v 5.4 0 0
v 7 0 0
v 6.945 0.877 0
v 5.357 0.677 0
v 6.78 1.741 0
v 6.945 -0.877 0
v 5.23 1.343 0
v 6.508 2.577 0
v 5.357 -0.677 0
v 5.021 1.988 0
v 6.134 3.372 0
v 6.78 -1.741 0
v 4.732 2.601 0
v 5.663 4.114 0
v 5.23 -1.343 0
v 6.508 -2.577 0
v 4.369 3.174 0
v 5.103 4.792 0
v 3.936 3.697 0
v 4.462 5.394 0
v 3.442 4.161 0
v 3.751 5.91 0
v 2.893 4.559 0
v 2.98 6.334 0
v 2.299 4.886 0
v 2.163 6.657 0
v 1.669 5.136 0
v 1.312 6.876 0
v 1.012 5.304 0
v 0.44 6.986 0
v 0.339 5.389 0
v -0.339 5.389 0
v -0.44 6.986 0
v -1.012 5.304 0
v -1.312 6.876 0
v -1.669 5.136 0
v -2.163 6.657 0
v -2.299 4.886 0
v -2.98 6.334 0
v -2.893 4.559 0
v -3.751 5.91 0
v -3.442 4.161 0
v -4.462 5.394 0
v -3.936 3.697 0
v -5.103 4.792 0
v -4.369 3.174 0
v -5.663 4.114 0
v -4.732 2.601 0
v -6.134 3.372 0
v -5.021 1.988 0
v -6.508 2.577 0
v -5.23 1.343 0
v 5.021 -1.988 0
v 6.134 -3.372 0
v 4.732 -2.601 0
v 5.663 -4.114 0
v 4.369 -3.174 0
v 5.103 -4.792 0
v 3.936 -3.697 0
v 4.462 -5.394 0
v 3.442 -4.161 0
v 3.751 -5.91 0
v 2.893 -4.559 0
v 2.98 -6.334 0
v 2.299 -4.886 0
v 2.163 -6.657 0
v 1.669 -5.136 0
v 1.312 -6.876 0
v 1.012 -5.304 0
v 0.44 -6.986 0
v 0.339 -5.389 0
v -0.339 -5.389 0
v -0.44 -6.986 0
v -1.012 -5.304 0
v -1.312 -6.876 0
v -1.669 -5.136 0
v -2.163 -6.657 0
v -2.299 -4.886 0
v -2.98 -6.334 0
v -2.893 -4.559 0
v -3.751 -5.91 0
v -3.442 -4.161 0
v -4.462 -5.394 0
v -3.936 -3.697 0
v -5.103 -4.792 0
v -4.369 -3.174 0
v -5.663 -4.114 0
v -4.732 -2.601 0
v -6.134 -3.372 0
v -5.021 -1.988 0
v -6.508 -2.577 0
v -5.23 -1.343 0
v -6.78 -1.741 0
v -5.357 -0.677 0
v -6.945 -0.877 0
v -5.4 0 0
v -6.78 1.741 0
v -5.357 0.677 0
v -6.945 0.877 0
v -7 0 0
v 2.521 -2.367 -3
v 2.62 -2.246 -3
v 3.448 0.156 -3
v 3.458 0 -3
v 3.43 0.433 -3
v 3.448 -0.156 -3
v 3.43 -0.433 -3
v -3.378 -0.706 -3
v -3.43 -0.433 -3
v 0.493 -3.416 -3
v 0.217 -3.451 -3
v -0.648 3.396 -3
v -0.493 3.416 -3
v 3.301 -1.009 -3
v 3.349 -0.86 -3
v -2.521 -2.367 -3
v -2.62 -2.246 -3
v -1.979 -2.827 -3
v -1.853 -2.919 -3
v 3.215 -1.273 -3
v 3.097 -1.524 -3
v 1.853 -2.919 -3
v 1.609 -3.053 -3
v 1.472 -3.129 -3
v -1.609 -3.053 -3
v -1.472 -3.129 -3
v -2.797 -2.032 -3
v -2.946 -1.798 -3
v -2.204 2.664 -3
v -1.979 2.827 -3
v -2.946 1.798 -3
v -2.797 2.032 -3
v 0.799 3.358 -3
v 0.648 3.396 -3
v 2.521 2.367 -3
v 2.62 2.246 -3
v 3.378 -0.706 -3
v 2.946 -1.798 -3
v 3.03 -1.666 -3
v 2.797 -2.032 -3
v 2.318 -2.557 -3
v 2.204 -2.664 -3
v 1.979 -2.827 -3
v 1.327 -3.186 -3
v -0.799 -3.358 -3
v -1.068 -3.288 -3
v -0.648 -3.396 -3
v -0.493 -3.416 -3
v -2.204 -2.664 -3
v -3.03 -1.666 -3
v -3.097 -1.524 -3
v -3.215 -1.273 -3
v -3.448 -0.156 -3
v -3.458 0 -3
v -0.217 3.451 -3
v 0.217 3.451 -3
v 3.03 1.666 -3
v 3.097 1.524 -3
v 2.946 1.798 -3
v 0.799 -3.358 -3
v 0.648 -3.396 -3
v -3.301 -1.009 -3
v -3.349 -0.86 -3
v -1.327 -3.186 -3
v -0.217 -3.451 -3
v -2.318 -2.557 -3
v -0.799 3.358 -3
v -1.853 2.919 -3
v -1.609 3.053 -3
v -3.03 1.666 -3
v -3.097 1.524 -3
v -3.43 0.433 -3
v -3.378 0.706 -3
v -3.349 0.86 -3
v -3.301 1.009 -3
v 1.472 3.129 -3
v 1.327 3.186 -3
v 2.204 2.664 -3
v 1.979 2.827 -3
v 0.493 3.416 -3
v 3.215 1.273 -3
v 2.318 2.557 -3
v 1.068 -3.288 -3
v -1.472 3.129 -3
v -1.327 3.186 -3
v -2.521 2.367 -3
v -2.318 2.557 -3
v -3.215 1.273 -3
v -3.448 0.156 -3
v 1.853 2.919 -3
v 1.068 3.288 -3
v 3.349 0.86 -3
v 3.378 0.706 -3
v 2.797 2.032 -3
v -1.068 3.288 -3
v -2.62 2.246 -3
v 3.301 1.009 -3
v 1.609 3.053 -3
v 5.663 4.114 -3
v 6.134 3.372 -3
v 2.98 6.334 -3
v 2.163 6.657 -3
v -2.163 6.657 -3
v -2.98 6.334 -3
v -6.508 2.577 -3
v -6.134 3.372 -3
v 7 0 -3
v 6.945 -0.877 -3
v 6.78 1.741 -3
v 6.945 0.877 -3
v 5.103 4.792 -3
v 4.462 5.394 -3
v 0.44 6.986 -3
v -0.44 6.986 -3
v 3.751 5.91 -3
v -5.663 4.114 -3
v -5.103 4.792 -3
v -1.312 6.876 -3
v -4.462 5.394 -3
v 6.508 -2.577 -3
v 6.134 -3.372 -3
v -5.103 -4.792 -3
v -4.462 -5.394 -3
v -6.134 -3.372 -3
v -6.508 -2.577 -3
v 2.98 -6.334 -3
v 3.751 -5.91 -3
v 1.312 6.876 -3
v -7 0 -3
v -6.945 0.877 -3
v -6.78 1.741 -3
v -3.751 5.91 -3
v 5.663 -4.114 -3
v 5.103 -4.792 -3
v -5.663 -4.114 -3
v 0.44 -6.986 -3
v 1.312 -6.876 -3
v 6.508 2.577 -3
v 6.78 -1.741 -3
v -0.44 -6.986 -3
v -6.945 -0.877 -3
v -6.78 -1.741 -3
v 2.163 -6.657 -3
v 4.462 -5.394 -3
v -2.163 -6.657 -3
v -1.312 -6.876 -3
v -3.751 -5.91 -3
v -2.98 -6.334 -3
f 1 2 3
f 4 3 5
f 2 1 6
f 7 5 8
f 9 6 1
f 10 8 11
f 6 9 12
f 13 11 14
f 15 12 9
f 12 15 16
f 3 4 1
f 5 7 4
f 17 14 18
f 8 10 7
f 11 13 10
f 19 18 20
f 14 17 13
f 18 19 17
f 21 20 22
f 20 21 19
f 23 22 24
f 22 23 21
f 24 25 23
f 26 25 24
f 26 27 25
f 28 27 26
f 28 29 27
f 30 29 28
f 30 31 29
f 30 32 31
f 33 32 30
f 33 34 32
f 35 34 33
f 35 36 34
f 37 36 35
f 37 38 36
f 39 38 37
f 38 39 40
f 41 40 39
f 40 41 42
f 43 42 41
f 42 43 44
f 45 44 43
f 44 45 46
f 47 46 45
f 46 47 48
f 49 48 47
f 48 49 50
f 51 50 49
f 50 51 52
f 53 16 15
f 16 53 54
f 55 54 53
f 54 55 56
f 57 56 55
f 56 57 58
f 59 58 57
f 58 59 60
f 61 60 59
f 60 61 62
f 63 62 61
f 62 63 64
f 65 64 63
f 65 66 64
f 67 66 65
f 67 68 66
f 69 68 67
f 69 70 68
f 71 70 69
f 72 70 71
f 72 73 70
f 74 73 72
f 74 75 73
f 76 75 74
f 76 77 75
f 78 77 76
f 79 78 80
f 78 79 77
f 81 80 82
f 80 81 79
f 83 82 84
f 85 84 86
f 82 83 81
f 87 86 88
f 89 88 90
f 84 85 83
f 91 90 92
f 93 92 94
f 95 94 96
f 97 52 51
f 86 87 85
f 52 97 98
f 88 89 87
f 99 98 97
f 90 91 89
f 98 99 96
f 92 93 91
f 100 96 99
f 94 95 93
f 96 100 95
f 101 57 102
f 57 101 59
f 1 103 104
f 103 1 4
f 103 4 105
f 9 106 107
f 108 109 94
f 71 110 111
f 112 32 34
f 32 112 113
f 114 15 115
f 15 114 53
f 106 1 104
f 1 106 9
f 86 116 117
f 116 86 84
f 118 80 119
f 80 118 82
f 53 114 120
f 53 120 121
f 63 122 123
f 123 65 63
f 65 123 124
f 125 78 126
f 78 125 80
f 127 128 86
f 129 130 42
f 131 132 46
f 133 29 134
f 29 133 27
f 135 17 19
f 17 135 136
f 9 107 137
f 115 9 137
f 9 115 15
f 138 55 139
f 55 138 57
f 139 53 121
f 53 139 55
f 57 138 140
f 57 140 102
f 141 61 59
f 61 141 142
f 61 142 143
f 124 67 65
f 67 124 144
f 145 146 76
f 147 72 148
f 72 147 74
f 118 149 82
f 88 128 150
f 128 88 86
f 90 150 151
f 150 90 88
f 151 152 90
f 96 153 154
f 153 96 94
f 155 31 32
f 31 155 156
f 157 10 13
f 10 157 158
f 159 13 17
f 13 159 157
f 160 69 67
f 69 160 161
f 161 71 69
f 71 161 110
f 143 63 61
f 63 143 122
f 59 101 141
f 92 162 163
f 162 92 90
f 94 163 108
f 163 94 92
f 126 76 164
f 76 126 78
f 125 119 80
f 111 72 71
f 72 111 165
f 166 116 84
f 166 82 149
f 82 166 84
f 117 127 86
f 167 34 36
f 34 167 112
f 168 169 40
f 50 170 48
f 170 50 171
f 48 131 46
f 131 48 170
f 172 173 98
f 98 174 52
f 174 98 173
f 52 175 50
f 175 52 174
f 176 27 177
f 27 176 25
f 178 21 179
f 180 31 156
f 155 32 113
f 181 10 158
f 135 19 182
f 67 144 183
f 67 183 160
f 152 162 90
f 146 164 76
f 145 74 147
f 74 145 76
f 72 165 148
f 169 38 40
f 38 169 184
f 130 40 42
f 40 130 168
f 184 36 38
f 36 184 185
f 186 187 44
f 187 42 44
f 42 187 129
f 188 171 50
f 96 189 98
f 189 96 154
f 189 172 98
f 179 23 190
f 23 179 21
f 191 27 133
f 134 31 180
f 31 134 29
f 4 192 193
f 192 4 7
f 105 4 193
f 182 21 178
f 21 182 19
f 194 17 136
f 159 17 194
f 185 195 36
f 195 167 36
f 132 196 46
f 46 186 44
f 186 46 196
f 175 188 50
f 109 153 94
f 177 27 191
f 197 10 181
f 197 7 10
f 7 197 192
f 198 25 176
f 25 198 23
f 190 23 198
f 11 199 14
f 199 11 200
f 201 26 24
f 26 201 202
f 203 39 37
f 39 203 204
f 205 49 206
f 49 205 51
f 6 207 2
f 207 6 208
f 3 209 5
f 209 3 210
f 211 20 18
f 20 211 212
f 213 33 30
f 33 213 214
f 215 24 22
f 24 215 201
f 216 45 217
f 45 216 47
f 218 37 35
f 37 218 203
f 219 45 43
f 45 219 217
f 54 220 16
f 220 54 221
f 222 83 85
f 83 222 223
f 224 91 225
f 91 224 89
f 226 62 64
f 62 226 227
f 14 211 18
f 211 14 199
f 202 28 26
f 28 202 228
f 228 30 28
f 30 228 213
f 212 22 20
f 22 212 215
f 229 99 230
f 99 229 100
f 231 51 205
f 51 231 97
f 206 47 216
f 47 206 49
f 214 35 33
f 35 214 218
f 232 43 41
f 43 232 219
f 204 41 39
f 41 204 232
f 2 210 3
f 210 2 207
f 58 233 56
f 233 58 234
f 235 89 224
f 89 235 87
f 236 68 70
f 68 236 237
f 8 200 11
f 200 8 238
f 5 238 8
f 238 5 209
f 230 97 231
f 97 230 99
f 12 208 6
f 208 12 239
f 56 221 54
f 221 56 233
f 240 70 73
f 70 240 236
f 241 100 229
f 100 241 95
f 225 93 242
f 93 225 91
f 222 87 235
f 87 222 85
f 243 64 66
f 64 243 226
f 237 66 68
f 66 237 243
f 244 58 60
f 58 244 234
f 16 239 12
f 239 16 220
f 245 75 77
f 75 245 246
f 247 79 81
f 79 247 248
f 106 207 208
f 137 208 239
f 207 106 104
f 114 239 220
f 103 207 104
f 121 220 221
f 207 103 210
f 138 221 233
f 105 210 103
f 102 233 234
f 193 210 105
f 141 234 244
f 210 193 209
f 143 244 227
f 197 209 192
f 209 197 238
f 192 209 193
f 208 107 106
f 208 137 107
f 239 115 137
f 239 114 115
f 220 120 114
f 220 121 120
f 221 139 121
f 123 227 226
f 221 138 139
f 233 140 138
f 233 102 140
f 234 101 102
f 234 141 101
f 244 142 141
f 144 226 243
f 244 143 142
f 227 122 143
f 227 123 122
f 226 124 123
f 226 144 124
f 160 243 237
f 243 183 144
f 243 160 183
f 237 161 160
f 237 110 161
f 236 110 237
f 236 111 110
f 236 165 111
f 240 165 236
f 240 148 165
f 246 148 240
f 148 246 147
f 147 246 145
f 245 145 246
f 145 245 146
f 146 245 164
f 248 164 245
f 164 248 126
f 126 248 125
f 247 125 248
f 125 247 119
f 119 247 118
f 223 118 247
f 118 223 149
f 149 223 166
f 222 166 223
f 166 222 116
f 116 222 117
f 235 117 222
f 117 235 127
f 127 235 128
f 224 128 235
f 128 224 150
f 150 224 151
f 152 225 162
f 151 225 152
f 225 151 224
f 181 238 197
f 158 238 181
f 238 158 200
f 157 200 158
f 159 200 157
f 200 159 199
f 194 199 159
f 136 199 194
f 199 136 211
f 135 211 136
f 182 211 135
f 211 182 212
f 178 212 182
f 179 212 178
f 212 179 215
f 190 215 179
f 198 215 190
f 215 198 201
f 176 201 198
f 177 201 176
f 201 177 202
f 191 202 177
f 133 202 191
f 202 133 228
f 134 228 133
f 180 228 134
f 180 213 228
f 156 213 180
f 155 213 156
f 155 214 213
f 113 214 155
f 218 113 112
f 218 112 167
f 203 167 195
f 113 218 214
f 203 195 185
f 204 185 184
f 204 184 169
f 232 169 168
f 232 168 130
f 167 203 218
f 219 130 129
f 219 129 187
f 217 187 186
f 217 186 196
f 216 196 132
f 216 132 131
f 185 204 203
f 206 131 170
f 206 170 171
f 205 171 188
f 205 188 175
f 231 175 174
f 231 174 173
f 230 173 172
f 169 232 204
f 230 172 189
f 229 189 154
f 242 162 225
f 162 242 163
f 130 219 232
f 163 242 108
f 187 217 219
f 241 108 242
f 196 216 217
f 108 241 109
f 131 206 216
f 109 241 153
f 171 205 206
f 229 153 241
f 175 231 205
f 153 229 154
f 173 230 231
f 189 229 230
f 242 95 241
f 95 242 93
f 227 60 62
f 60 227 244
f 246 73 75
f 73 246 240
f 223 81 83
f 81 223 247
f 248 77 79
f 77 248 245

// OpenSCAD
$fn = 50;


difference() {
	union() {
		translate(v = [0, 0, -3.0000000000]) {
			cylinder(h = 3, r = 7.0000000000);
		}
	}
	union() {
		translate(v = [0, 0, 0]) {
			rotate(a = [0, 0, 0]) {
				difference() {
					union() {
						#translate(v = [0, 0, -3.0000000000]) {
							cylinder(h = 3, r = 2.6000000000);
						}
						#translate(v = [0, 0, -3.9000000000]) {
							cylinder(h = 3.9000000000, r1 = 2.8750000000, r2 = 5.4000000000);
						}
						#translate(v = [0, 0, -3.0000000000]) {
							cylinder(h = 3, r = 2.8750000000);
						}
						#translate(v = [0, 0, -3.0000000000]) {
							cylinder(h = 3, r = 2.6000000000);
						}
					}
					union();
				}
			}
		}
	}
}
